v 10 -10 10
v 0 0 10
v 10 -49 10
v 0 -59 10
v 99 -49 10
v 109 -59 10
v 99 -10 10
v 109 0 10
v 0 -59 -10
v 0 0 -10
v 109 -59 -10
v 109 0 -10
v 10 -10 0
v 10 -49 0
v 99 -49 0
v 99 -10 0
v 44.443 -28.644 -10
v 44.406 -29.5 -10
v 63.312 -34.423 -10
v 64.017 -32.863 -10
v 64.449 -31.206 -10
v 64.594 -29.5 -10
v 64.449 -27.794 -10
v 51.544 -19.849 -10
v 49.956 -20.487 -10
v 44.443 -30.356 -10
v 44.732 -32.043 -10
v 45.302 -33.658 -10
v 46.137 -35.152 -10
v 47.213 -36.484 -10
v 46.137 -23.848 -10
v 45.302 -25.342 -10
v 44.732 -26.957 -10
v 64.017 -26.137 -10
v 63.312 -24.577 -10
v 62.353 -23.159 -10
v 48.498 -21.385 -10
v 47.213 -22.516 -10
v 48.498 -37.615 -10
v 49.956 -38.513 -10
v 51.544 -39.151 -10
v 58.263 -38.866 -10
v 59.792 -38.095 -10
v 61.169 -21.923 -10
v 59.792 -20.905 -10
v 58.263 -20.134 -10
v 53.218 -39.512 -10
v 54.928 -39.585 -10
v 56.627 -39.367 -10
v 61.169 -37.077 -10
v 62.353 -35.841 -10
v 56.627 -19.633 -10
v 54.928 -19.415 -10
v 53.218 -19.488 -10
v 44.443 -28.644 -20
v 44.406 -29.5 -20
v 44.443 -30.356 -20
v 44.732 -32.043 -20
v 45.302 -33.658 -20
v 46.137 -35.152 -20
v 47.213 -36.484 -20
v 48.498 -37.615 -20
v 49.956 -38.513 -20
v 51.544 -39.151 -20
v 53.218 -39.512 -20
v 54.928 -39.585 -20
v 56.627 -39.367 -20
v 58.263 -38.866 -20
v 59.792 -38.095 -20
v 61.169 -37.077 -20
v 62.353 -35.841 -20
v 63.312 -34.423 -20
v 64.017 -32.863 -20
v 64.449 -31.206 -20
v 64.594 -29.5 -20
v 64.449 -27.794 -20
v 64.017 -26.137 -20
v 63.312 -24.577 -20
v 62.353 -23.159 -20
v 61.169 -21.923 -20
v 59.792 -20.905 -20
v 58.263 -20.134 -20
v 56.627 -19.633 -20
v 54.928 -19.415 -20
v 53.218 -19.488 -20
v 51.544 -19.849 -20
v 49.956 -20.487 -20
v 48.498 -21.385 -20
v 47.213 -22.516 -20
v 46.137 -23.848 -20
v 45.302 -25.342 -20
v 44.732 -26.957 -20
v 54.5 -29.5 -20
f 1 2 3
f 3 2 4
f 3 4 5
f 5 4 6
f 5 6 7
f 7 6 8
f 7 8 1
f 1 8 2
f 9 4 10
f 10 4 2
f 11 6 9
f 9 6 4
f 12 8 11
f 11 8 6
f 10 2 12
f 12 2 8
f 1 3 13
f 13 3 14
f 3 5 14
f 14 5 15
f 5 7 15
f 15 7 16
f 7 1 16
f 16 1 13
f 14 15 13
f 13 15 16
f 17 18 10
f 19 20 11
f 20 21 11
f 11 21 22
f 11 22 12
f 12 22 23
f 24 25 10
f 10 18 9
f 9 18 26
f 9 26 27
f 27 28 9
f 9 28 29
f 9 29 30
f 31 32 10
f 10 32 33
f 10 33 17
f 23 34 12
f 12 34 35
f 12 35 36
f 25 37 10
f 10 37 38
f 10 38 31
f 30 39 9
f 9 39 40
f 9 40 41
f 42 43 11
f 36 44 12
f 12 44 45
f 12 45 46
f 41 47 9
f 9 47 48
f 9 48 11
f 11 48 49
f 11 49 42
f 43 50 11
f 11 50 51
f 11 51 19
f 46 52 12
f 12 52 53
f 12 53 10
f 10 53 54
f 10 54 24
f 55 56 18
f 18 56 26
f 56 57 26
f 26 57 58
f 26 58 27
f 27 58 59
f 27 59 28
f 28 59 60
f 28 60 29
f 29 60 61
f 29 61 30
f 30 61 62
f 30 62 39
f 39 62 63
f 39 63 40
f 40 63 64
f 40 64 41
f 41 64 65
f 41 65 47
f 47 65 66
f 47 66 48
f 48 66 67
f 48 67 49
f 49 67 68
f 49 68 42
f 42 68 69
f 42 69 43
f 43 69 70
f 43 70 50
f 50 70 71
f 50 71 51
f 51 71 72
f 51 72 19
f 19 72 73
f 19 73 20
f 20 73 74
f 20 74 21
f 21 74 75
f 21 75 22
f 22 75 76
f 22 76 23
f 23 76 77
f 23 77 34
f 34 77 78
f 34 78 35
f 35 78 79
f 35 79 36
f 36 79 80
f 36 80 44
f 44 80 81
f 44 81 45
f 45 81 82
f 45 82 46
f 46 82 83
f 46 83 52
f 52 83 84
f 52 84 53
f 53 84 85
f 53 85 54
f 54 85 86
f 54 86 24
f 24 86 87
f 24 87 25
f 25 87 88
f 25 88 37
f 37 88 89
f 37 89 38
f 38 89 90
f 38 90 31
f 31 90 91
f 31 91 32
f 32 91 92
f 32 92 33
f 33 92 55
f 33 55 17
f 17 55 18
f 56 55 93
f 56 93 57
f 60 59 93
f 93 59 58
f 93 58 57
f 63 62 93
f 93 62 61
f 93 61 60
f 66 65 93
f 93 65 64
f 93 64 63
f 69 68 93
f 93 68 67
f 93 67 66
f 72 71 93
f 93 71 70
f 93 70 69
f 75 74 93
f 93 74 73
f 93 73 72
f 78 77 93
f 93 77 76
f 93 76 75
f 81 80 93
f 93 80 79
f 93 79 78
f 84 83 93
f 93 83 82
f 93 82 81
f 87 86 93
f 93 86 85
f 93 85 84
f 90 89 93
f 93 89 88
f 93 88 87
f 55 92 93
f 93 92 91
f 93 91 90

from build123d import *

# Parameters (mm, degrees)
SKETCH1_W           = 109
SKETCH1_H           = 59
SKETCH1_W_2         = 89
SKETCH1_H_2         = 39
BOSS_EXTRUDE1_DEPTH = 10
SKETCH2_W           = 109
SKETCH2_H           = 59
BOSS_EXTRUDE2_DEPTH = 10
SKETCH3_R           = 10.093684064
BOSS_EXTRUDE3_DEPTH = 10


with BuildPart() as part:
    # Sketch1 → Boss-Extrude1 (new body)
    with BuildSketch(Plane.XY):
        with Locations((54.5, -29.5)):
            Rectangle(SKETCH1_W, SKETCH1_H)
        with Locations((54.5, -29.5)):
            Rectangle(SKETCH1_W_2, SKETCH1_H_2, mode=Mode.SUBTRACT)
    extrude(amount=BOSS_EXTRUDE1_DEPTH)

    # Sketch2 → Boss-Extrude2 (add)
    with BuildSketch(Plane(origin=(0, 0, 0), x_dir=(-1, 0, 0), z_dir=(0, 0, -1))):
        with Locations((-54.5, -29.5)):
            Rectangle(SKETCH2_W, SKETCH2_H)
    extrude(amount=BOSS_EXTRUDE2_DEPTH)

    # Sketch3 → Boss-Extrude3 (add)
    with BuildSketch(Plane(origin=(0, 0, -10), x_dir=(-1, 0, 0), z_dir=(0, 0, -1))):
        with Locations((-54.5, -29.5)):
            Circle(SKETCH3_R)
    extrude(amount=BOSS_EXTRUDE3_DEPTH)


solid = part.part
